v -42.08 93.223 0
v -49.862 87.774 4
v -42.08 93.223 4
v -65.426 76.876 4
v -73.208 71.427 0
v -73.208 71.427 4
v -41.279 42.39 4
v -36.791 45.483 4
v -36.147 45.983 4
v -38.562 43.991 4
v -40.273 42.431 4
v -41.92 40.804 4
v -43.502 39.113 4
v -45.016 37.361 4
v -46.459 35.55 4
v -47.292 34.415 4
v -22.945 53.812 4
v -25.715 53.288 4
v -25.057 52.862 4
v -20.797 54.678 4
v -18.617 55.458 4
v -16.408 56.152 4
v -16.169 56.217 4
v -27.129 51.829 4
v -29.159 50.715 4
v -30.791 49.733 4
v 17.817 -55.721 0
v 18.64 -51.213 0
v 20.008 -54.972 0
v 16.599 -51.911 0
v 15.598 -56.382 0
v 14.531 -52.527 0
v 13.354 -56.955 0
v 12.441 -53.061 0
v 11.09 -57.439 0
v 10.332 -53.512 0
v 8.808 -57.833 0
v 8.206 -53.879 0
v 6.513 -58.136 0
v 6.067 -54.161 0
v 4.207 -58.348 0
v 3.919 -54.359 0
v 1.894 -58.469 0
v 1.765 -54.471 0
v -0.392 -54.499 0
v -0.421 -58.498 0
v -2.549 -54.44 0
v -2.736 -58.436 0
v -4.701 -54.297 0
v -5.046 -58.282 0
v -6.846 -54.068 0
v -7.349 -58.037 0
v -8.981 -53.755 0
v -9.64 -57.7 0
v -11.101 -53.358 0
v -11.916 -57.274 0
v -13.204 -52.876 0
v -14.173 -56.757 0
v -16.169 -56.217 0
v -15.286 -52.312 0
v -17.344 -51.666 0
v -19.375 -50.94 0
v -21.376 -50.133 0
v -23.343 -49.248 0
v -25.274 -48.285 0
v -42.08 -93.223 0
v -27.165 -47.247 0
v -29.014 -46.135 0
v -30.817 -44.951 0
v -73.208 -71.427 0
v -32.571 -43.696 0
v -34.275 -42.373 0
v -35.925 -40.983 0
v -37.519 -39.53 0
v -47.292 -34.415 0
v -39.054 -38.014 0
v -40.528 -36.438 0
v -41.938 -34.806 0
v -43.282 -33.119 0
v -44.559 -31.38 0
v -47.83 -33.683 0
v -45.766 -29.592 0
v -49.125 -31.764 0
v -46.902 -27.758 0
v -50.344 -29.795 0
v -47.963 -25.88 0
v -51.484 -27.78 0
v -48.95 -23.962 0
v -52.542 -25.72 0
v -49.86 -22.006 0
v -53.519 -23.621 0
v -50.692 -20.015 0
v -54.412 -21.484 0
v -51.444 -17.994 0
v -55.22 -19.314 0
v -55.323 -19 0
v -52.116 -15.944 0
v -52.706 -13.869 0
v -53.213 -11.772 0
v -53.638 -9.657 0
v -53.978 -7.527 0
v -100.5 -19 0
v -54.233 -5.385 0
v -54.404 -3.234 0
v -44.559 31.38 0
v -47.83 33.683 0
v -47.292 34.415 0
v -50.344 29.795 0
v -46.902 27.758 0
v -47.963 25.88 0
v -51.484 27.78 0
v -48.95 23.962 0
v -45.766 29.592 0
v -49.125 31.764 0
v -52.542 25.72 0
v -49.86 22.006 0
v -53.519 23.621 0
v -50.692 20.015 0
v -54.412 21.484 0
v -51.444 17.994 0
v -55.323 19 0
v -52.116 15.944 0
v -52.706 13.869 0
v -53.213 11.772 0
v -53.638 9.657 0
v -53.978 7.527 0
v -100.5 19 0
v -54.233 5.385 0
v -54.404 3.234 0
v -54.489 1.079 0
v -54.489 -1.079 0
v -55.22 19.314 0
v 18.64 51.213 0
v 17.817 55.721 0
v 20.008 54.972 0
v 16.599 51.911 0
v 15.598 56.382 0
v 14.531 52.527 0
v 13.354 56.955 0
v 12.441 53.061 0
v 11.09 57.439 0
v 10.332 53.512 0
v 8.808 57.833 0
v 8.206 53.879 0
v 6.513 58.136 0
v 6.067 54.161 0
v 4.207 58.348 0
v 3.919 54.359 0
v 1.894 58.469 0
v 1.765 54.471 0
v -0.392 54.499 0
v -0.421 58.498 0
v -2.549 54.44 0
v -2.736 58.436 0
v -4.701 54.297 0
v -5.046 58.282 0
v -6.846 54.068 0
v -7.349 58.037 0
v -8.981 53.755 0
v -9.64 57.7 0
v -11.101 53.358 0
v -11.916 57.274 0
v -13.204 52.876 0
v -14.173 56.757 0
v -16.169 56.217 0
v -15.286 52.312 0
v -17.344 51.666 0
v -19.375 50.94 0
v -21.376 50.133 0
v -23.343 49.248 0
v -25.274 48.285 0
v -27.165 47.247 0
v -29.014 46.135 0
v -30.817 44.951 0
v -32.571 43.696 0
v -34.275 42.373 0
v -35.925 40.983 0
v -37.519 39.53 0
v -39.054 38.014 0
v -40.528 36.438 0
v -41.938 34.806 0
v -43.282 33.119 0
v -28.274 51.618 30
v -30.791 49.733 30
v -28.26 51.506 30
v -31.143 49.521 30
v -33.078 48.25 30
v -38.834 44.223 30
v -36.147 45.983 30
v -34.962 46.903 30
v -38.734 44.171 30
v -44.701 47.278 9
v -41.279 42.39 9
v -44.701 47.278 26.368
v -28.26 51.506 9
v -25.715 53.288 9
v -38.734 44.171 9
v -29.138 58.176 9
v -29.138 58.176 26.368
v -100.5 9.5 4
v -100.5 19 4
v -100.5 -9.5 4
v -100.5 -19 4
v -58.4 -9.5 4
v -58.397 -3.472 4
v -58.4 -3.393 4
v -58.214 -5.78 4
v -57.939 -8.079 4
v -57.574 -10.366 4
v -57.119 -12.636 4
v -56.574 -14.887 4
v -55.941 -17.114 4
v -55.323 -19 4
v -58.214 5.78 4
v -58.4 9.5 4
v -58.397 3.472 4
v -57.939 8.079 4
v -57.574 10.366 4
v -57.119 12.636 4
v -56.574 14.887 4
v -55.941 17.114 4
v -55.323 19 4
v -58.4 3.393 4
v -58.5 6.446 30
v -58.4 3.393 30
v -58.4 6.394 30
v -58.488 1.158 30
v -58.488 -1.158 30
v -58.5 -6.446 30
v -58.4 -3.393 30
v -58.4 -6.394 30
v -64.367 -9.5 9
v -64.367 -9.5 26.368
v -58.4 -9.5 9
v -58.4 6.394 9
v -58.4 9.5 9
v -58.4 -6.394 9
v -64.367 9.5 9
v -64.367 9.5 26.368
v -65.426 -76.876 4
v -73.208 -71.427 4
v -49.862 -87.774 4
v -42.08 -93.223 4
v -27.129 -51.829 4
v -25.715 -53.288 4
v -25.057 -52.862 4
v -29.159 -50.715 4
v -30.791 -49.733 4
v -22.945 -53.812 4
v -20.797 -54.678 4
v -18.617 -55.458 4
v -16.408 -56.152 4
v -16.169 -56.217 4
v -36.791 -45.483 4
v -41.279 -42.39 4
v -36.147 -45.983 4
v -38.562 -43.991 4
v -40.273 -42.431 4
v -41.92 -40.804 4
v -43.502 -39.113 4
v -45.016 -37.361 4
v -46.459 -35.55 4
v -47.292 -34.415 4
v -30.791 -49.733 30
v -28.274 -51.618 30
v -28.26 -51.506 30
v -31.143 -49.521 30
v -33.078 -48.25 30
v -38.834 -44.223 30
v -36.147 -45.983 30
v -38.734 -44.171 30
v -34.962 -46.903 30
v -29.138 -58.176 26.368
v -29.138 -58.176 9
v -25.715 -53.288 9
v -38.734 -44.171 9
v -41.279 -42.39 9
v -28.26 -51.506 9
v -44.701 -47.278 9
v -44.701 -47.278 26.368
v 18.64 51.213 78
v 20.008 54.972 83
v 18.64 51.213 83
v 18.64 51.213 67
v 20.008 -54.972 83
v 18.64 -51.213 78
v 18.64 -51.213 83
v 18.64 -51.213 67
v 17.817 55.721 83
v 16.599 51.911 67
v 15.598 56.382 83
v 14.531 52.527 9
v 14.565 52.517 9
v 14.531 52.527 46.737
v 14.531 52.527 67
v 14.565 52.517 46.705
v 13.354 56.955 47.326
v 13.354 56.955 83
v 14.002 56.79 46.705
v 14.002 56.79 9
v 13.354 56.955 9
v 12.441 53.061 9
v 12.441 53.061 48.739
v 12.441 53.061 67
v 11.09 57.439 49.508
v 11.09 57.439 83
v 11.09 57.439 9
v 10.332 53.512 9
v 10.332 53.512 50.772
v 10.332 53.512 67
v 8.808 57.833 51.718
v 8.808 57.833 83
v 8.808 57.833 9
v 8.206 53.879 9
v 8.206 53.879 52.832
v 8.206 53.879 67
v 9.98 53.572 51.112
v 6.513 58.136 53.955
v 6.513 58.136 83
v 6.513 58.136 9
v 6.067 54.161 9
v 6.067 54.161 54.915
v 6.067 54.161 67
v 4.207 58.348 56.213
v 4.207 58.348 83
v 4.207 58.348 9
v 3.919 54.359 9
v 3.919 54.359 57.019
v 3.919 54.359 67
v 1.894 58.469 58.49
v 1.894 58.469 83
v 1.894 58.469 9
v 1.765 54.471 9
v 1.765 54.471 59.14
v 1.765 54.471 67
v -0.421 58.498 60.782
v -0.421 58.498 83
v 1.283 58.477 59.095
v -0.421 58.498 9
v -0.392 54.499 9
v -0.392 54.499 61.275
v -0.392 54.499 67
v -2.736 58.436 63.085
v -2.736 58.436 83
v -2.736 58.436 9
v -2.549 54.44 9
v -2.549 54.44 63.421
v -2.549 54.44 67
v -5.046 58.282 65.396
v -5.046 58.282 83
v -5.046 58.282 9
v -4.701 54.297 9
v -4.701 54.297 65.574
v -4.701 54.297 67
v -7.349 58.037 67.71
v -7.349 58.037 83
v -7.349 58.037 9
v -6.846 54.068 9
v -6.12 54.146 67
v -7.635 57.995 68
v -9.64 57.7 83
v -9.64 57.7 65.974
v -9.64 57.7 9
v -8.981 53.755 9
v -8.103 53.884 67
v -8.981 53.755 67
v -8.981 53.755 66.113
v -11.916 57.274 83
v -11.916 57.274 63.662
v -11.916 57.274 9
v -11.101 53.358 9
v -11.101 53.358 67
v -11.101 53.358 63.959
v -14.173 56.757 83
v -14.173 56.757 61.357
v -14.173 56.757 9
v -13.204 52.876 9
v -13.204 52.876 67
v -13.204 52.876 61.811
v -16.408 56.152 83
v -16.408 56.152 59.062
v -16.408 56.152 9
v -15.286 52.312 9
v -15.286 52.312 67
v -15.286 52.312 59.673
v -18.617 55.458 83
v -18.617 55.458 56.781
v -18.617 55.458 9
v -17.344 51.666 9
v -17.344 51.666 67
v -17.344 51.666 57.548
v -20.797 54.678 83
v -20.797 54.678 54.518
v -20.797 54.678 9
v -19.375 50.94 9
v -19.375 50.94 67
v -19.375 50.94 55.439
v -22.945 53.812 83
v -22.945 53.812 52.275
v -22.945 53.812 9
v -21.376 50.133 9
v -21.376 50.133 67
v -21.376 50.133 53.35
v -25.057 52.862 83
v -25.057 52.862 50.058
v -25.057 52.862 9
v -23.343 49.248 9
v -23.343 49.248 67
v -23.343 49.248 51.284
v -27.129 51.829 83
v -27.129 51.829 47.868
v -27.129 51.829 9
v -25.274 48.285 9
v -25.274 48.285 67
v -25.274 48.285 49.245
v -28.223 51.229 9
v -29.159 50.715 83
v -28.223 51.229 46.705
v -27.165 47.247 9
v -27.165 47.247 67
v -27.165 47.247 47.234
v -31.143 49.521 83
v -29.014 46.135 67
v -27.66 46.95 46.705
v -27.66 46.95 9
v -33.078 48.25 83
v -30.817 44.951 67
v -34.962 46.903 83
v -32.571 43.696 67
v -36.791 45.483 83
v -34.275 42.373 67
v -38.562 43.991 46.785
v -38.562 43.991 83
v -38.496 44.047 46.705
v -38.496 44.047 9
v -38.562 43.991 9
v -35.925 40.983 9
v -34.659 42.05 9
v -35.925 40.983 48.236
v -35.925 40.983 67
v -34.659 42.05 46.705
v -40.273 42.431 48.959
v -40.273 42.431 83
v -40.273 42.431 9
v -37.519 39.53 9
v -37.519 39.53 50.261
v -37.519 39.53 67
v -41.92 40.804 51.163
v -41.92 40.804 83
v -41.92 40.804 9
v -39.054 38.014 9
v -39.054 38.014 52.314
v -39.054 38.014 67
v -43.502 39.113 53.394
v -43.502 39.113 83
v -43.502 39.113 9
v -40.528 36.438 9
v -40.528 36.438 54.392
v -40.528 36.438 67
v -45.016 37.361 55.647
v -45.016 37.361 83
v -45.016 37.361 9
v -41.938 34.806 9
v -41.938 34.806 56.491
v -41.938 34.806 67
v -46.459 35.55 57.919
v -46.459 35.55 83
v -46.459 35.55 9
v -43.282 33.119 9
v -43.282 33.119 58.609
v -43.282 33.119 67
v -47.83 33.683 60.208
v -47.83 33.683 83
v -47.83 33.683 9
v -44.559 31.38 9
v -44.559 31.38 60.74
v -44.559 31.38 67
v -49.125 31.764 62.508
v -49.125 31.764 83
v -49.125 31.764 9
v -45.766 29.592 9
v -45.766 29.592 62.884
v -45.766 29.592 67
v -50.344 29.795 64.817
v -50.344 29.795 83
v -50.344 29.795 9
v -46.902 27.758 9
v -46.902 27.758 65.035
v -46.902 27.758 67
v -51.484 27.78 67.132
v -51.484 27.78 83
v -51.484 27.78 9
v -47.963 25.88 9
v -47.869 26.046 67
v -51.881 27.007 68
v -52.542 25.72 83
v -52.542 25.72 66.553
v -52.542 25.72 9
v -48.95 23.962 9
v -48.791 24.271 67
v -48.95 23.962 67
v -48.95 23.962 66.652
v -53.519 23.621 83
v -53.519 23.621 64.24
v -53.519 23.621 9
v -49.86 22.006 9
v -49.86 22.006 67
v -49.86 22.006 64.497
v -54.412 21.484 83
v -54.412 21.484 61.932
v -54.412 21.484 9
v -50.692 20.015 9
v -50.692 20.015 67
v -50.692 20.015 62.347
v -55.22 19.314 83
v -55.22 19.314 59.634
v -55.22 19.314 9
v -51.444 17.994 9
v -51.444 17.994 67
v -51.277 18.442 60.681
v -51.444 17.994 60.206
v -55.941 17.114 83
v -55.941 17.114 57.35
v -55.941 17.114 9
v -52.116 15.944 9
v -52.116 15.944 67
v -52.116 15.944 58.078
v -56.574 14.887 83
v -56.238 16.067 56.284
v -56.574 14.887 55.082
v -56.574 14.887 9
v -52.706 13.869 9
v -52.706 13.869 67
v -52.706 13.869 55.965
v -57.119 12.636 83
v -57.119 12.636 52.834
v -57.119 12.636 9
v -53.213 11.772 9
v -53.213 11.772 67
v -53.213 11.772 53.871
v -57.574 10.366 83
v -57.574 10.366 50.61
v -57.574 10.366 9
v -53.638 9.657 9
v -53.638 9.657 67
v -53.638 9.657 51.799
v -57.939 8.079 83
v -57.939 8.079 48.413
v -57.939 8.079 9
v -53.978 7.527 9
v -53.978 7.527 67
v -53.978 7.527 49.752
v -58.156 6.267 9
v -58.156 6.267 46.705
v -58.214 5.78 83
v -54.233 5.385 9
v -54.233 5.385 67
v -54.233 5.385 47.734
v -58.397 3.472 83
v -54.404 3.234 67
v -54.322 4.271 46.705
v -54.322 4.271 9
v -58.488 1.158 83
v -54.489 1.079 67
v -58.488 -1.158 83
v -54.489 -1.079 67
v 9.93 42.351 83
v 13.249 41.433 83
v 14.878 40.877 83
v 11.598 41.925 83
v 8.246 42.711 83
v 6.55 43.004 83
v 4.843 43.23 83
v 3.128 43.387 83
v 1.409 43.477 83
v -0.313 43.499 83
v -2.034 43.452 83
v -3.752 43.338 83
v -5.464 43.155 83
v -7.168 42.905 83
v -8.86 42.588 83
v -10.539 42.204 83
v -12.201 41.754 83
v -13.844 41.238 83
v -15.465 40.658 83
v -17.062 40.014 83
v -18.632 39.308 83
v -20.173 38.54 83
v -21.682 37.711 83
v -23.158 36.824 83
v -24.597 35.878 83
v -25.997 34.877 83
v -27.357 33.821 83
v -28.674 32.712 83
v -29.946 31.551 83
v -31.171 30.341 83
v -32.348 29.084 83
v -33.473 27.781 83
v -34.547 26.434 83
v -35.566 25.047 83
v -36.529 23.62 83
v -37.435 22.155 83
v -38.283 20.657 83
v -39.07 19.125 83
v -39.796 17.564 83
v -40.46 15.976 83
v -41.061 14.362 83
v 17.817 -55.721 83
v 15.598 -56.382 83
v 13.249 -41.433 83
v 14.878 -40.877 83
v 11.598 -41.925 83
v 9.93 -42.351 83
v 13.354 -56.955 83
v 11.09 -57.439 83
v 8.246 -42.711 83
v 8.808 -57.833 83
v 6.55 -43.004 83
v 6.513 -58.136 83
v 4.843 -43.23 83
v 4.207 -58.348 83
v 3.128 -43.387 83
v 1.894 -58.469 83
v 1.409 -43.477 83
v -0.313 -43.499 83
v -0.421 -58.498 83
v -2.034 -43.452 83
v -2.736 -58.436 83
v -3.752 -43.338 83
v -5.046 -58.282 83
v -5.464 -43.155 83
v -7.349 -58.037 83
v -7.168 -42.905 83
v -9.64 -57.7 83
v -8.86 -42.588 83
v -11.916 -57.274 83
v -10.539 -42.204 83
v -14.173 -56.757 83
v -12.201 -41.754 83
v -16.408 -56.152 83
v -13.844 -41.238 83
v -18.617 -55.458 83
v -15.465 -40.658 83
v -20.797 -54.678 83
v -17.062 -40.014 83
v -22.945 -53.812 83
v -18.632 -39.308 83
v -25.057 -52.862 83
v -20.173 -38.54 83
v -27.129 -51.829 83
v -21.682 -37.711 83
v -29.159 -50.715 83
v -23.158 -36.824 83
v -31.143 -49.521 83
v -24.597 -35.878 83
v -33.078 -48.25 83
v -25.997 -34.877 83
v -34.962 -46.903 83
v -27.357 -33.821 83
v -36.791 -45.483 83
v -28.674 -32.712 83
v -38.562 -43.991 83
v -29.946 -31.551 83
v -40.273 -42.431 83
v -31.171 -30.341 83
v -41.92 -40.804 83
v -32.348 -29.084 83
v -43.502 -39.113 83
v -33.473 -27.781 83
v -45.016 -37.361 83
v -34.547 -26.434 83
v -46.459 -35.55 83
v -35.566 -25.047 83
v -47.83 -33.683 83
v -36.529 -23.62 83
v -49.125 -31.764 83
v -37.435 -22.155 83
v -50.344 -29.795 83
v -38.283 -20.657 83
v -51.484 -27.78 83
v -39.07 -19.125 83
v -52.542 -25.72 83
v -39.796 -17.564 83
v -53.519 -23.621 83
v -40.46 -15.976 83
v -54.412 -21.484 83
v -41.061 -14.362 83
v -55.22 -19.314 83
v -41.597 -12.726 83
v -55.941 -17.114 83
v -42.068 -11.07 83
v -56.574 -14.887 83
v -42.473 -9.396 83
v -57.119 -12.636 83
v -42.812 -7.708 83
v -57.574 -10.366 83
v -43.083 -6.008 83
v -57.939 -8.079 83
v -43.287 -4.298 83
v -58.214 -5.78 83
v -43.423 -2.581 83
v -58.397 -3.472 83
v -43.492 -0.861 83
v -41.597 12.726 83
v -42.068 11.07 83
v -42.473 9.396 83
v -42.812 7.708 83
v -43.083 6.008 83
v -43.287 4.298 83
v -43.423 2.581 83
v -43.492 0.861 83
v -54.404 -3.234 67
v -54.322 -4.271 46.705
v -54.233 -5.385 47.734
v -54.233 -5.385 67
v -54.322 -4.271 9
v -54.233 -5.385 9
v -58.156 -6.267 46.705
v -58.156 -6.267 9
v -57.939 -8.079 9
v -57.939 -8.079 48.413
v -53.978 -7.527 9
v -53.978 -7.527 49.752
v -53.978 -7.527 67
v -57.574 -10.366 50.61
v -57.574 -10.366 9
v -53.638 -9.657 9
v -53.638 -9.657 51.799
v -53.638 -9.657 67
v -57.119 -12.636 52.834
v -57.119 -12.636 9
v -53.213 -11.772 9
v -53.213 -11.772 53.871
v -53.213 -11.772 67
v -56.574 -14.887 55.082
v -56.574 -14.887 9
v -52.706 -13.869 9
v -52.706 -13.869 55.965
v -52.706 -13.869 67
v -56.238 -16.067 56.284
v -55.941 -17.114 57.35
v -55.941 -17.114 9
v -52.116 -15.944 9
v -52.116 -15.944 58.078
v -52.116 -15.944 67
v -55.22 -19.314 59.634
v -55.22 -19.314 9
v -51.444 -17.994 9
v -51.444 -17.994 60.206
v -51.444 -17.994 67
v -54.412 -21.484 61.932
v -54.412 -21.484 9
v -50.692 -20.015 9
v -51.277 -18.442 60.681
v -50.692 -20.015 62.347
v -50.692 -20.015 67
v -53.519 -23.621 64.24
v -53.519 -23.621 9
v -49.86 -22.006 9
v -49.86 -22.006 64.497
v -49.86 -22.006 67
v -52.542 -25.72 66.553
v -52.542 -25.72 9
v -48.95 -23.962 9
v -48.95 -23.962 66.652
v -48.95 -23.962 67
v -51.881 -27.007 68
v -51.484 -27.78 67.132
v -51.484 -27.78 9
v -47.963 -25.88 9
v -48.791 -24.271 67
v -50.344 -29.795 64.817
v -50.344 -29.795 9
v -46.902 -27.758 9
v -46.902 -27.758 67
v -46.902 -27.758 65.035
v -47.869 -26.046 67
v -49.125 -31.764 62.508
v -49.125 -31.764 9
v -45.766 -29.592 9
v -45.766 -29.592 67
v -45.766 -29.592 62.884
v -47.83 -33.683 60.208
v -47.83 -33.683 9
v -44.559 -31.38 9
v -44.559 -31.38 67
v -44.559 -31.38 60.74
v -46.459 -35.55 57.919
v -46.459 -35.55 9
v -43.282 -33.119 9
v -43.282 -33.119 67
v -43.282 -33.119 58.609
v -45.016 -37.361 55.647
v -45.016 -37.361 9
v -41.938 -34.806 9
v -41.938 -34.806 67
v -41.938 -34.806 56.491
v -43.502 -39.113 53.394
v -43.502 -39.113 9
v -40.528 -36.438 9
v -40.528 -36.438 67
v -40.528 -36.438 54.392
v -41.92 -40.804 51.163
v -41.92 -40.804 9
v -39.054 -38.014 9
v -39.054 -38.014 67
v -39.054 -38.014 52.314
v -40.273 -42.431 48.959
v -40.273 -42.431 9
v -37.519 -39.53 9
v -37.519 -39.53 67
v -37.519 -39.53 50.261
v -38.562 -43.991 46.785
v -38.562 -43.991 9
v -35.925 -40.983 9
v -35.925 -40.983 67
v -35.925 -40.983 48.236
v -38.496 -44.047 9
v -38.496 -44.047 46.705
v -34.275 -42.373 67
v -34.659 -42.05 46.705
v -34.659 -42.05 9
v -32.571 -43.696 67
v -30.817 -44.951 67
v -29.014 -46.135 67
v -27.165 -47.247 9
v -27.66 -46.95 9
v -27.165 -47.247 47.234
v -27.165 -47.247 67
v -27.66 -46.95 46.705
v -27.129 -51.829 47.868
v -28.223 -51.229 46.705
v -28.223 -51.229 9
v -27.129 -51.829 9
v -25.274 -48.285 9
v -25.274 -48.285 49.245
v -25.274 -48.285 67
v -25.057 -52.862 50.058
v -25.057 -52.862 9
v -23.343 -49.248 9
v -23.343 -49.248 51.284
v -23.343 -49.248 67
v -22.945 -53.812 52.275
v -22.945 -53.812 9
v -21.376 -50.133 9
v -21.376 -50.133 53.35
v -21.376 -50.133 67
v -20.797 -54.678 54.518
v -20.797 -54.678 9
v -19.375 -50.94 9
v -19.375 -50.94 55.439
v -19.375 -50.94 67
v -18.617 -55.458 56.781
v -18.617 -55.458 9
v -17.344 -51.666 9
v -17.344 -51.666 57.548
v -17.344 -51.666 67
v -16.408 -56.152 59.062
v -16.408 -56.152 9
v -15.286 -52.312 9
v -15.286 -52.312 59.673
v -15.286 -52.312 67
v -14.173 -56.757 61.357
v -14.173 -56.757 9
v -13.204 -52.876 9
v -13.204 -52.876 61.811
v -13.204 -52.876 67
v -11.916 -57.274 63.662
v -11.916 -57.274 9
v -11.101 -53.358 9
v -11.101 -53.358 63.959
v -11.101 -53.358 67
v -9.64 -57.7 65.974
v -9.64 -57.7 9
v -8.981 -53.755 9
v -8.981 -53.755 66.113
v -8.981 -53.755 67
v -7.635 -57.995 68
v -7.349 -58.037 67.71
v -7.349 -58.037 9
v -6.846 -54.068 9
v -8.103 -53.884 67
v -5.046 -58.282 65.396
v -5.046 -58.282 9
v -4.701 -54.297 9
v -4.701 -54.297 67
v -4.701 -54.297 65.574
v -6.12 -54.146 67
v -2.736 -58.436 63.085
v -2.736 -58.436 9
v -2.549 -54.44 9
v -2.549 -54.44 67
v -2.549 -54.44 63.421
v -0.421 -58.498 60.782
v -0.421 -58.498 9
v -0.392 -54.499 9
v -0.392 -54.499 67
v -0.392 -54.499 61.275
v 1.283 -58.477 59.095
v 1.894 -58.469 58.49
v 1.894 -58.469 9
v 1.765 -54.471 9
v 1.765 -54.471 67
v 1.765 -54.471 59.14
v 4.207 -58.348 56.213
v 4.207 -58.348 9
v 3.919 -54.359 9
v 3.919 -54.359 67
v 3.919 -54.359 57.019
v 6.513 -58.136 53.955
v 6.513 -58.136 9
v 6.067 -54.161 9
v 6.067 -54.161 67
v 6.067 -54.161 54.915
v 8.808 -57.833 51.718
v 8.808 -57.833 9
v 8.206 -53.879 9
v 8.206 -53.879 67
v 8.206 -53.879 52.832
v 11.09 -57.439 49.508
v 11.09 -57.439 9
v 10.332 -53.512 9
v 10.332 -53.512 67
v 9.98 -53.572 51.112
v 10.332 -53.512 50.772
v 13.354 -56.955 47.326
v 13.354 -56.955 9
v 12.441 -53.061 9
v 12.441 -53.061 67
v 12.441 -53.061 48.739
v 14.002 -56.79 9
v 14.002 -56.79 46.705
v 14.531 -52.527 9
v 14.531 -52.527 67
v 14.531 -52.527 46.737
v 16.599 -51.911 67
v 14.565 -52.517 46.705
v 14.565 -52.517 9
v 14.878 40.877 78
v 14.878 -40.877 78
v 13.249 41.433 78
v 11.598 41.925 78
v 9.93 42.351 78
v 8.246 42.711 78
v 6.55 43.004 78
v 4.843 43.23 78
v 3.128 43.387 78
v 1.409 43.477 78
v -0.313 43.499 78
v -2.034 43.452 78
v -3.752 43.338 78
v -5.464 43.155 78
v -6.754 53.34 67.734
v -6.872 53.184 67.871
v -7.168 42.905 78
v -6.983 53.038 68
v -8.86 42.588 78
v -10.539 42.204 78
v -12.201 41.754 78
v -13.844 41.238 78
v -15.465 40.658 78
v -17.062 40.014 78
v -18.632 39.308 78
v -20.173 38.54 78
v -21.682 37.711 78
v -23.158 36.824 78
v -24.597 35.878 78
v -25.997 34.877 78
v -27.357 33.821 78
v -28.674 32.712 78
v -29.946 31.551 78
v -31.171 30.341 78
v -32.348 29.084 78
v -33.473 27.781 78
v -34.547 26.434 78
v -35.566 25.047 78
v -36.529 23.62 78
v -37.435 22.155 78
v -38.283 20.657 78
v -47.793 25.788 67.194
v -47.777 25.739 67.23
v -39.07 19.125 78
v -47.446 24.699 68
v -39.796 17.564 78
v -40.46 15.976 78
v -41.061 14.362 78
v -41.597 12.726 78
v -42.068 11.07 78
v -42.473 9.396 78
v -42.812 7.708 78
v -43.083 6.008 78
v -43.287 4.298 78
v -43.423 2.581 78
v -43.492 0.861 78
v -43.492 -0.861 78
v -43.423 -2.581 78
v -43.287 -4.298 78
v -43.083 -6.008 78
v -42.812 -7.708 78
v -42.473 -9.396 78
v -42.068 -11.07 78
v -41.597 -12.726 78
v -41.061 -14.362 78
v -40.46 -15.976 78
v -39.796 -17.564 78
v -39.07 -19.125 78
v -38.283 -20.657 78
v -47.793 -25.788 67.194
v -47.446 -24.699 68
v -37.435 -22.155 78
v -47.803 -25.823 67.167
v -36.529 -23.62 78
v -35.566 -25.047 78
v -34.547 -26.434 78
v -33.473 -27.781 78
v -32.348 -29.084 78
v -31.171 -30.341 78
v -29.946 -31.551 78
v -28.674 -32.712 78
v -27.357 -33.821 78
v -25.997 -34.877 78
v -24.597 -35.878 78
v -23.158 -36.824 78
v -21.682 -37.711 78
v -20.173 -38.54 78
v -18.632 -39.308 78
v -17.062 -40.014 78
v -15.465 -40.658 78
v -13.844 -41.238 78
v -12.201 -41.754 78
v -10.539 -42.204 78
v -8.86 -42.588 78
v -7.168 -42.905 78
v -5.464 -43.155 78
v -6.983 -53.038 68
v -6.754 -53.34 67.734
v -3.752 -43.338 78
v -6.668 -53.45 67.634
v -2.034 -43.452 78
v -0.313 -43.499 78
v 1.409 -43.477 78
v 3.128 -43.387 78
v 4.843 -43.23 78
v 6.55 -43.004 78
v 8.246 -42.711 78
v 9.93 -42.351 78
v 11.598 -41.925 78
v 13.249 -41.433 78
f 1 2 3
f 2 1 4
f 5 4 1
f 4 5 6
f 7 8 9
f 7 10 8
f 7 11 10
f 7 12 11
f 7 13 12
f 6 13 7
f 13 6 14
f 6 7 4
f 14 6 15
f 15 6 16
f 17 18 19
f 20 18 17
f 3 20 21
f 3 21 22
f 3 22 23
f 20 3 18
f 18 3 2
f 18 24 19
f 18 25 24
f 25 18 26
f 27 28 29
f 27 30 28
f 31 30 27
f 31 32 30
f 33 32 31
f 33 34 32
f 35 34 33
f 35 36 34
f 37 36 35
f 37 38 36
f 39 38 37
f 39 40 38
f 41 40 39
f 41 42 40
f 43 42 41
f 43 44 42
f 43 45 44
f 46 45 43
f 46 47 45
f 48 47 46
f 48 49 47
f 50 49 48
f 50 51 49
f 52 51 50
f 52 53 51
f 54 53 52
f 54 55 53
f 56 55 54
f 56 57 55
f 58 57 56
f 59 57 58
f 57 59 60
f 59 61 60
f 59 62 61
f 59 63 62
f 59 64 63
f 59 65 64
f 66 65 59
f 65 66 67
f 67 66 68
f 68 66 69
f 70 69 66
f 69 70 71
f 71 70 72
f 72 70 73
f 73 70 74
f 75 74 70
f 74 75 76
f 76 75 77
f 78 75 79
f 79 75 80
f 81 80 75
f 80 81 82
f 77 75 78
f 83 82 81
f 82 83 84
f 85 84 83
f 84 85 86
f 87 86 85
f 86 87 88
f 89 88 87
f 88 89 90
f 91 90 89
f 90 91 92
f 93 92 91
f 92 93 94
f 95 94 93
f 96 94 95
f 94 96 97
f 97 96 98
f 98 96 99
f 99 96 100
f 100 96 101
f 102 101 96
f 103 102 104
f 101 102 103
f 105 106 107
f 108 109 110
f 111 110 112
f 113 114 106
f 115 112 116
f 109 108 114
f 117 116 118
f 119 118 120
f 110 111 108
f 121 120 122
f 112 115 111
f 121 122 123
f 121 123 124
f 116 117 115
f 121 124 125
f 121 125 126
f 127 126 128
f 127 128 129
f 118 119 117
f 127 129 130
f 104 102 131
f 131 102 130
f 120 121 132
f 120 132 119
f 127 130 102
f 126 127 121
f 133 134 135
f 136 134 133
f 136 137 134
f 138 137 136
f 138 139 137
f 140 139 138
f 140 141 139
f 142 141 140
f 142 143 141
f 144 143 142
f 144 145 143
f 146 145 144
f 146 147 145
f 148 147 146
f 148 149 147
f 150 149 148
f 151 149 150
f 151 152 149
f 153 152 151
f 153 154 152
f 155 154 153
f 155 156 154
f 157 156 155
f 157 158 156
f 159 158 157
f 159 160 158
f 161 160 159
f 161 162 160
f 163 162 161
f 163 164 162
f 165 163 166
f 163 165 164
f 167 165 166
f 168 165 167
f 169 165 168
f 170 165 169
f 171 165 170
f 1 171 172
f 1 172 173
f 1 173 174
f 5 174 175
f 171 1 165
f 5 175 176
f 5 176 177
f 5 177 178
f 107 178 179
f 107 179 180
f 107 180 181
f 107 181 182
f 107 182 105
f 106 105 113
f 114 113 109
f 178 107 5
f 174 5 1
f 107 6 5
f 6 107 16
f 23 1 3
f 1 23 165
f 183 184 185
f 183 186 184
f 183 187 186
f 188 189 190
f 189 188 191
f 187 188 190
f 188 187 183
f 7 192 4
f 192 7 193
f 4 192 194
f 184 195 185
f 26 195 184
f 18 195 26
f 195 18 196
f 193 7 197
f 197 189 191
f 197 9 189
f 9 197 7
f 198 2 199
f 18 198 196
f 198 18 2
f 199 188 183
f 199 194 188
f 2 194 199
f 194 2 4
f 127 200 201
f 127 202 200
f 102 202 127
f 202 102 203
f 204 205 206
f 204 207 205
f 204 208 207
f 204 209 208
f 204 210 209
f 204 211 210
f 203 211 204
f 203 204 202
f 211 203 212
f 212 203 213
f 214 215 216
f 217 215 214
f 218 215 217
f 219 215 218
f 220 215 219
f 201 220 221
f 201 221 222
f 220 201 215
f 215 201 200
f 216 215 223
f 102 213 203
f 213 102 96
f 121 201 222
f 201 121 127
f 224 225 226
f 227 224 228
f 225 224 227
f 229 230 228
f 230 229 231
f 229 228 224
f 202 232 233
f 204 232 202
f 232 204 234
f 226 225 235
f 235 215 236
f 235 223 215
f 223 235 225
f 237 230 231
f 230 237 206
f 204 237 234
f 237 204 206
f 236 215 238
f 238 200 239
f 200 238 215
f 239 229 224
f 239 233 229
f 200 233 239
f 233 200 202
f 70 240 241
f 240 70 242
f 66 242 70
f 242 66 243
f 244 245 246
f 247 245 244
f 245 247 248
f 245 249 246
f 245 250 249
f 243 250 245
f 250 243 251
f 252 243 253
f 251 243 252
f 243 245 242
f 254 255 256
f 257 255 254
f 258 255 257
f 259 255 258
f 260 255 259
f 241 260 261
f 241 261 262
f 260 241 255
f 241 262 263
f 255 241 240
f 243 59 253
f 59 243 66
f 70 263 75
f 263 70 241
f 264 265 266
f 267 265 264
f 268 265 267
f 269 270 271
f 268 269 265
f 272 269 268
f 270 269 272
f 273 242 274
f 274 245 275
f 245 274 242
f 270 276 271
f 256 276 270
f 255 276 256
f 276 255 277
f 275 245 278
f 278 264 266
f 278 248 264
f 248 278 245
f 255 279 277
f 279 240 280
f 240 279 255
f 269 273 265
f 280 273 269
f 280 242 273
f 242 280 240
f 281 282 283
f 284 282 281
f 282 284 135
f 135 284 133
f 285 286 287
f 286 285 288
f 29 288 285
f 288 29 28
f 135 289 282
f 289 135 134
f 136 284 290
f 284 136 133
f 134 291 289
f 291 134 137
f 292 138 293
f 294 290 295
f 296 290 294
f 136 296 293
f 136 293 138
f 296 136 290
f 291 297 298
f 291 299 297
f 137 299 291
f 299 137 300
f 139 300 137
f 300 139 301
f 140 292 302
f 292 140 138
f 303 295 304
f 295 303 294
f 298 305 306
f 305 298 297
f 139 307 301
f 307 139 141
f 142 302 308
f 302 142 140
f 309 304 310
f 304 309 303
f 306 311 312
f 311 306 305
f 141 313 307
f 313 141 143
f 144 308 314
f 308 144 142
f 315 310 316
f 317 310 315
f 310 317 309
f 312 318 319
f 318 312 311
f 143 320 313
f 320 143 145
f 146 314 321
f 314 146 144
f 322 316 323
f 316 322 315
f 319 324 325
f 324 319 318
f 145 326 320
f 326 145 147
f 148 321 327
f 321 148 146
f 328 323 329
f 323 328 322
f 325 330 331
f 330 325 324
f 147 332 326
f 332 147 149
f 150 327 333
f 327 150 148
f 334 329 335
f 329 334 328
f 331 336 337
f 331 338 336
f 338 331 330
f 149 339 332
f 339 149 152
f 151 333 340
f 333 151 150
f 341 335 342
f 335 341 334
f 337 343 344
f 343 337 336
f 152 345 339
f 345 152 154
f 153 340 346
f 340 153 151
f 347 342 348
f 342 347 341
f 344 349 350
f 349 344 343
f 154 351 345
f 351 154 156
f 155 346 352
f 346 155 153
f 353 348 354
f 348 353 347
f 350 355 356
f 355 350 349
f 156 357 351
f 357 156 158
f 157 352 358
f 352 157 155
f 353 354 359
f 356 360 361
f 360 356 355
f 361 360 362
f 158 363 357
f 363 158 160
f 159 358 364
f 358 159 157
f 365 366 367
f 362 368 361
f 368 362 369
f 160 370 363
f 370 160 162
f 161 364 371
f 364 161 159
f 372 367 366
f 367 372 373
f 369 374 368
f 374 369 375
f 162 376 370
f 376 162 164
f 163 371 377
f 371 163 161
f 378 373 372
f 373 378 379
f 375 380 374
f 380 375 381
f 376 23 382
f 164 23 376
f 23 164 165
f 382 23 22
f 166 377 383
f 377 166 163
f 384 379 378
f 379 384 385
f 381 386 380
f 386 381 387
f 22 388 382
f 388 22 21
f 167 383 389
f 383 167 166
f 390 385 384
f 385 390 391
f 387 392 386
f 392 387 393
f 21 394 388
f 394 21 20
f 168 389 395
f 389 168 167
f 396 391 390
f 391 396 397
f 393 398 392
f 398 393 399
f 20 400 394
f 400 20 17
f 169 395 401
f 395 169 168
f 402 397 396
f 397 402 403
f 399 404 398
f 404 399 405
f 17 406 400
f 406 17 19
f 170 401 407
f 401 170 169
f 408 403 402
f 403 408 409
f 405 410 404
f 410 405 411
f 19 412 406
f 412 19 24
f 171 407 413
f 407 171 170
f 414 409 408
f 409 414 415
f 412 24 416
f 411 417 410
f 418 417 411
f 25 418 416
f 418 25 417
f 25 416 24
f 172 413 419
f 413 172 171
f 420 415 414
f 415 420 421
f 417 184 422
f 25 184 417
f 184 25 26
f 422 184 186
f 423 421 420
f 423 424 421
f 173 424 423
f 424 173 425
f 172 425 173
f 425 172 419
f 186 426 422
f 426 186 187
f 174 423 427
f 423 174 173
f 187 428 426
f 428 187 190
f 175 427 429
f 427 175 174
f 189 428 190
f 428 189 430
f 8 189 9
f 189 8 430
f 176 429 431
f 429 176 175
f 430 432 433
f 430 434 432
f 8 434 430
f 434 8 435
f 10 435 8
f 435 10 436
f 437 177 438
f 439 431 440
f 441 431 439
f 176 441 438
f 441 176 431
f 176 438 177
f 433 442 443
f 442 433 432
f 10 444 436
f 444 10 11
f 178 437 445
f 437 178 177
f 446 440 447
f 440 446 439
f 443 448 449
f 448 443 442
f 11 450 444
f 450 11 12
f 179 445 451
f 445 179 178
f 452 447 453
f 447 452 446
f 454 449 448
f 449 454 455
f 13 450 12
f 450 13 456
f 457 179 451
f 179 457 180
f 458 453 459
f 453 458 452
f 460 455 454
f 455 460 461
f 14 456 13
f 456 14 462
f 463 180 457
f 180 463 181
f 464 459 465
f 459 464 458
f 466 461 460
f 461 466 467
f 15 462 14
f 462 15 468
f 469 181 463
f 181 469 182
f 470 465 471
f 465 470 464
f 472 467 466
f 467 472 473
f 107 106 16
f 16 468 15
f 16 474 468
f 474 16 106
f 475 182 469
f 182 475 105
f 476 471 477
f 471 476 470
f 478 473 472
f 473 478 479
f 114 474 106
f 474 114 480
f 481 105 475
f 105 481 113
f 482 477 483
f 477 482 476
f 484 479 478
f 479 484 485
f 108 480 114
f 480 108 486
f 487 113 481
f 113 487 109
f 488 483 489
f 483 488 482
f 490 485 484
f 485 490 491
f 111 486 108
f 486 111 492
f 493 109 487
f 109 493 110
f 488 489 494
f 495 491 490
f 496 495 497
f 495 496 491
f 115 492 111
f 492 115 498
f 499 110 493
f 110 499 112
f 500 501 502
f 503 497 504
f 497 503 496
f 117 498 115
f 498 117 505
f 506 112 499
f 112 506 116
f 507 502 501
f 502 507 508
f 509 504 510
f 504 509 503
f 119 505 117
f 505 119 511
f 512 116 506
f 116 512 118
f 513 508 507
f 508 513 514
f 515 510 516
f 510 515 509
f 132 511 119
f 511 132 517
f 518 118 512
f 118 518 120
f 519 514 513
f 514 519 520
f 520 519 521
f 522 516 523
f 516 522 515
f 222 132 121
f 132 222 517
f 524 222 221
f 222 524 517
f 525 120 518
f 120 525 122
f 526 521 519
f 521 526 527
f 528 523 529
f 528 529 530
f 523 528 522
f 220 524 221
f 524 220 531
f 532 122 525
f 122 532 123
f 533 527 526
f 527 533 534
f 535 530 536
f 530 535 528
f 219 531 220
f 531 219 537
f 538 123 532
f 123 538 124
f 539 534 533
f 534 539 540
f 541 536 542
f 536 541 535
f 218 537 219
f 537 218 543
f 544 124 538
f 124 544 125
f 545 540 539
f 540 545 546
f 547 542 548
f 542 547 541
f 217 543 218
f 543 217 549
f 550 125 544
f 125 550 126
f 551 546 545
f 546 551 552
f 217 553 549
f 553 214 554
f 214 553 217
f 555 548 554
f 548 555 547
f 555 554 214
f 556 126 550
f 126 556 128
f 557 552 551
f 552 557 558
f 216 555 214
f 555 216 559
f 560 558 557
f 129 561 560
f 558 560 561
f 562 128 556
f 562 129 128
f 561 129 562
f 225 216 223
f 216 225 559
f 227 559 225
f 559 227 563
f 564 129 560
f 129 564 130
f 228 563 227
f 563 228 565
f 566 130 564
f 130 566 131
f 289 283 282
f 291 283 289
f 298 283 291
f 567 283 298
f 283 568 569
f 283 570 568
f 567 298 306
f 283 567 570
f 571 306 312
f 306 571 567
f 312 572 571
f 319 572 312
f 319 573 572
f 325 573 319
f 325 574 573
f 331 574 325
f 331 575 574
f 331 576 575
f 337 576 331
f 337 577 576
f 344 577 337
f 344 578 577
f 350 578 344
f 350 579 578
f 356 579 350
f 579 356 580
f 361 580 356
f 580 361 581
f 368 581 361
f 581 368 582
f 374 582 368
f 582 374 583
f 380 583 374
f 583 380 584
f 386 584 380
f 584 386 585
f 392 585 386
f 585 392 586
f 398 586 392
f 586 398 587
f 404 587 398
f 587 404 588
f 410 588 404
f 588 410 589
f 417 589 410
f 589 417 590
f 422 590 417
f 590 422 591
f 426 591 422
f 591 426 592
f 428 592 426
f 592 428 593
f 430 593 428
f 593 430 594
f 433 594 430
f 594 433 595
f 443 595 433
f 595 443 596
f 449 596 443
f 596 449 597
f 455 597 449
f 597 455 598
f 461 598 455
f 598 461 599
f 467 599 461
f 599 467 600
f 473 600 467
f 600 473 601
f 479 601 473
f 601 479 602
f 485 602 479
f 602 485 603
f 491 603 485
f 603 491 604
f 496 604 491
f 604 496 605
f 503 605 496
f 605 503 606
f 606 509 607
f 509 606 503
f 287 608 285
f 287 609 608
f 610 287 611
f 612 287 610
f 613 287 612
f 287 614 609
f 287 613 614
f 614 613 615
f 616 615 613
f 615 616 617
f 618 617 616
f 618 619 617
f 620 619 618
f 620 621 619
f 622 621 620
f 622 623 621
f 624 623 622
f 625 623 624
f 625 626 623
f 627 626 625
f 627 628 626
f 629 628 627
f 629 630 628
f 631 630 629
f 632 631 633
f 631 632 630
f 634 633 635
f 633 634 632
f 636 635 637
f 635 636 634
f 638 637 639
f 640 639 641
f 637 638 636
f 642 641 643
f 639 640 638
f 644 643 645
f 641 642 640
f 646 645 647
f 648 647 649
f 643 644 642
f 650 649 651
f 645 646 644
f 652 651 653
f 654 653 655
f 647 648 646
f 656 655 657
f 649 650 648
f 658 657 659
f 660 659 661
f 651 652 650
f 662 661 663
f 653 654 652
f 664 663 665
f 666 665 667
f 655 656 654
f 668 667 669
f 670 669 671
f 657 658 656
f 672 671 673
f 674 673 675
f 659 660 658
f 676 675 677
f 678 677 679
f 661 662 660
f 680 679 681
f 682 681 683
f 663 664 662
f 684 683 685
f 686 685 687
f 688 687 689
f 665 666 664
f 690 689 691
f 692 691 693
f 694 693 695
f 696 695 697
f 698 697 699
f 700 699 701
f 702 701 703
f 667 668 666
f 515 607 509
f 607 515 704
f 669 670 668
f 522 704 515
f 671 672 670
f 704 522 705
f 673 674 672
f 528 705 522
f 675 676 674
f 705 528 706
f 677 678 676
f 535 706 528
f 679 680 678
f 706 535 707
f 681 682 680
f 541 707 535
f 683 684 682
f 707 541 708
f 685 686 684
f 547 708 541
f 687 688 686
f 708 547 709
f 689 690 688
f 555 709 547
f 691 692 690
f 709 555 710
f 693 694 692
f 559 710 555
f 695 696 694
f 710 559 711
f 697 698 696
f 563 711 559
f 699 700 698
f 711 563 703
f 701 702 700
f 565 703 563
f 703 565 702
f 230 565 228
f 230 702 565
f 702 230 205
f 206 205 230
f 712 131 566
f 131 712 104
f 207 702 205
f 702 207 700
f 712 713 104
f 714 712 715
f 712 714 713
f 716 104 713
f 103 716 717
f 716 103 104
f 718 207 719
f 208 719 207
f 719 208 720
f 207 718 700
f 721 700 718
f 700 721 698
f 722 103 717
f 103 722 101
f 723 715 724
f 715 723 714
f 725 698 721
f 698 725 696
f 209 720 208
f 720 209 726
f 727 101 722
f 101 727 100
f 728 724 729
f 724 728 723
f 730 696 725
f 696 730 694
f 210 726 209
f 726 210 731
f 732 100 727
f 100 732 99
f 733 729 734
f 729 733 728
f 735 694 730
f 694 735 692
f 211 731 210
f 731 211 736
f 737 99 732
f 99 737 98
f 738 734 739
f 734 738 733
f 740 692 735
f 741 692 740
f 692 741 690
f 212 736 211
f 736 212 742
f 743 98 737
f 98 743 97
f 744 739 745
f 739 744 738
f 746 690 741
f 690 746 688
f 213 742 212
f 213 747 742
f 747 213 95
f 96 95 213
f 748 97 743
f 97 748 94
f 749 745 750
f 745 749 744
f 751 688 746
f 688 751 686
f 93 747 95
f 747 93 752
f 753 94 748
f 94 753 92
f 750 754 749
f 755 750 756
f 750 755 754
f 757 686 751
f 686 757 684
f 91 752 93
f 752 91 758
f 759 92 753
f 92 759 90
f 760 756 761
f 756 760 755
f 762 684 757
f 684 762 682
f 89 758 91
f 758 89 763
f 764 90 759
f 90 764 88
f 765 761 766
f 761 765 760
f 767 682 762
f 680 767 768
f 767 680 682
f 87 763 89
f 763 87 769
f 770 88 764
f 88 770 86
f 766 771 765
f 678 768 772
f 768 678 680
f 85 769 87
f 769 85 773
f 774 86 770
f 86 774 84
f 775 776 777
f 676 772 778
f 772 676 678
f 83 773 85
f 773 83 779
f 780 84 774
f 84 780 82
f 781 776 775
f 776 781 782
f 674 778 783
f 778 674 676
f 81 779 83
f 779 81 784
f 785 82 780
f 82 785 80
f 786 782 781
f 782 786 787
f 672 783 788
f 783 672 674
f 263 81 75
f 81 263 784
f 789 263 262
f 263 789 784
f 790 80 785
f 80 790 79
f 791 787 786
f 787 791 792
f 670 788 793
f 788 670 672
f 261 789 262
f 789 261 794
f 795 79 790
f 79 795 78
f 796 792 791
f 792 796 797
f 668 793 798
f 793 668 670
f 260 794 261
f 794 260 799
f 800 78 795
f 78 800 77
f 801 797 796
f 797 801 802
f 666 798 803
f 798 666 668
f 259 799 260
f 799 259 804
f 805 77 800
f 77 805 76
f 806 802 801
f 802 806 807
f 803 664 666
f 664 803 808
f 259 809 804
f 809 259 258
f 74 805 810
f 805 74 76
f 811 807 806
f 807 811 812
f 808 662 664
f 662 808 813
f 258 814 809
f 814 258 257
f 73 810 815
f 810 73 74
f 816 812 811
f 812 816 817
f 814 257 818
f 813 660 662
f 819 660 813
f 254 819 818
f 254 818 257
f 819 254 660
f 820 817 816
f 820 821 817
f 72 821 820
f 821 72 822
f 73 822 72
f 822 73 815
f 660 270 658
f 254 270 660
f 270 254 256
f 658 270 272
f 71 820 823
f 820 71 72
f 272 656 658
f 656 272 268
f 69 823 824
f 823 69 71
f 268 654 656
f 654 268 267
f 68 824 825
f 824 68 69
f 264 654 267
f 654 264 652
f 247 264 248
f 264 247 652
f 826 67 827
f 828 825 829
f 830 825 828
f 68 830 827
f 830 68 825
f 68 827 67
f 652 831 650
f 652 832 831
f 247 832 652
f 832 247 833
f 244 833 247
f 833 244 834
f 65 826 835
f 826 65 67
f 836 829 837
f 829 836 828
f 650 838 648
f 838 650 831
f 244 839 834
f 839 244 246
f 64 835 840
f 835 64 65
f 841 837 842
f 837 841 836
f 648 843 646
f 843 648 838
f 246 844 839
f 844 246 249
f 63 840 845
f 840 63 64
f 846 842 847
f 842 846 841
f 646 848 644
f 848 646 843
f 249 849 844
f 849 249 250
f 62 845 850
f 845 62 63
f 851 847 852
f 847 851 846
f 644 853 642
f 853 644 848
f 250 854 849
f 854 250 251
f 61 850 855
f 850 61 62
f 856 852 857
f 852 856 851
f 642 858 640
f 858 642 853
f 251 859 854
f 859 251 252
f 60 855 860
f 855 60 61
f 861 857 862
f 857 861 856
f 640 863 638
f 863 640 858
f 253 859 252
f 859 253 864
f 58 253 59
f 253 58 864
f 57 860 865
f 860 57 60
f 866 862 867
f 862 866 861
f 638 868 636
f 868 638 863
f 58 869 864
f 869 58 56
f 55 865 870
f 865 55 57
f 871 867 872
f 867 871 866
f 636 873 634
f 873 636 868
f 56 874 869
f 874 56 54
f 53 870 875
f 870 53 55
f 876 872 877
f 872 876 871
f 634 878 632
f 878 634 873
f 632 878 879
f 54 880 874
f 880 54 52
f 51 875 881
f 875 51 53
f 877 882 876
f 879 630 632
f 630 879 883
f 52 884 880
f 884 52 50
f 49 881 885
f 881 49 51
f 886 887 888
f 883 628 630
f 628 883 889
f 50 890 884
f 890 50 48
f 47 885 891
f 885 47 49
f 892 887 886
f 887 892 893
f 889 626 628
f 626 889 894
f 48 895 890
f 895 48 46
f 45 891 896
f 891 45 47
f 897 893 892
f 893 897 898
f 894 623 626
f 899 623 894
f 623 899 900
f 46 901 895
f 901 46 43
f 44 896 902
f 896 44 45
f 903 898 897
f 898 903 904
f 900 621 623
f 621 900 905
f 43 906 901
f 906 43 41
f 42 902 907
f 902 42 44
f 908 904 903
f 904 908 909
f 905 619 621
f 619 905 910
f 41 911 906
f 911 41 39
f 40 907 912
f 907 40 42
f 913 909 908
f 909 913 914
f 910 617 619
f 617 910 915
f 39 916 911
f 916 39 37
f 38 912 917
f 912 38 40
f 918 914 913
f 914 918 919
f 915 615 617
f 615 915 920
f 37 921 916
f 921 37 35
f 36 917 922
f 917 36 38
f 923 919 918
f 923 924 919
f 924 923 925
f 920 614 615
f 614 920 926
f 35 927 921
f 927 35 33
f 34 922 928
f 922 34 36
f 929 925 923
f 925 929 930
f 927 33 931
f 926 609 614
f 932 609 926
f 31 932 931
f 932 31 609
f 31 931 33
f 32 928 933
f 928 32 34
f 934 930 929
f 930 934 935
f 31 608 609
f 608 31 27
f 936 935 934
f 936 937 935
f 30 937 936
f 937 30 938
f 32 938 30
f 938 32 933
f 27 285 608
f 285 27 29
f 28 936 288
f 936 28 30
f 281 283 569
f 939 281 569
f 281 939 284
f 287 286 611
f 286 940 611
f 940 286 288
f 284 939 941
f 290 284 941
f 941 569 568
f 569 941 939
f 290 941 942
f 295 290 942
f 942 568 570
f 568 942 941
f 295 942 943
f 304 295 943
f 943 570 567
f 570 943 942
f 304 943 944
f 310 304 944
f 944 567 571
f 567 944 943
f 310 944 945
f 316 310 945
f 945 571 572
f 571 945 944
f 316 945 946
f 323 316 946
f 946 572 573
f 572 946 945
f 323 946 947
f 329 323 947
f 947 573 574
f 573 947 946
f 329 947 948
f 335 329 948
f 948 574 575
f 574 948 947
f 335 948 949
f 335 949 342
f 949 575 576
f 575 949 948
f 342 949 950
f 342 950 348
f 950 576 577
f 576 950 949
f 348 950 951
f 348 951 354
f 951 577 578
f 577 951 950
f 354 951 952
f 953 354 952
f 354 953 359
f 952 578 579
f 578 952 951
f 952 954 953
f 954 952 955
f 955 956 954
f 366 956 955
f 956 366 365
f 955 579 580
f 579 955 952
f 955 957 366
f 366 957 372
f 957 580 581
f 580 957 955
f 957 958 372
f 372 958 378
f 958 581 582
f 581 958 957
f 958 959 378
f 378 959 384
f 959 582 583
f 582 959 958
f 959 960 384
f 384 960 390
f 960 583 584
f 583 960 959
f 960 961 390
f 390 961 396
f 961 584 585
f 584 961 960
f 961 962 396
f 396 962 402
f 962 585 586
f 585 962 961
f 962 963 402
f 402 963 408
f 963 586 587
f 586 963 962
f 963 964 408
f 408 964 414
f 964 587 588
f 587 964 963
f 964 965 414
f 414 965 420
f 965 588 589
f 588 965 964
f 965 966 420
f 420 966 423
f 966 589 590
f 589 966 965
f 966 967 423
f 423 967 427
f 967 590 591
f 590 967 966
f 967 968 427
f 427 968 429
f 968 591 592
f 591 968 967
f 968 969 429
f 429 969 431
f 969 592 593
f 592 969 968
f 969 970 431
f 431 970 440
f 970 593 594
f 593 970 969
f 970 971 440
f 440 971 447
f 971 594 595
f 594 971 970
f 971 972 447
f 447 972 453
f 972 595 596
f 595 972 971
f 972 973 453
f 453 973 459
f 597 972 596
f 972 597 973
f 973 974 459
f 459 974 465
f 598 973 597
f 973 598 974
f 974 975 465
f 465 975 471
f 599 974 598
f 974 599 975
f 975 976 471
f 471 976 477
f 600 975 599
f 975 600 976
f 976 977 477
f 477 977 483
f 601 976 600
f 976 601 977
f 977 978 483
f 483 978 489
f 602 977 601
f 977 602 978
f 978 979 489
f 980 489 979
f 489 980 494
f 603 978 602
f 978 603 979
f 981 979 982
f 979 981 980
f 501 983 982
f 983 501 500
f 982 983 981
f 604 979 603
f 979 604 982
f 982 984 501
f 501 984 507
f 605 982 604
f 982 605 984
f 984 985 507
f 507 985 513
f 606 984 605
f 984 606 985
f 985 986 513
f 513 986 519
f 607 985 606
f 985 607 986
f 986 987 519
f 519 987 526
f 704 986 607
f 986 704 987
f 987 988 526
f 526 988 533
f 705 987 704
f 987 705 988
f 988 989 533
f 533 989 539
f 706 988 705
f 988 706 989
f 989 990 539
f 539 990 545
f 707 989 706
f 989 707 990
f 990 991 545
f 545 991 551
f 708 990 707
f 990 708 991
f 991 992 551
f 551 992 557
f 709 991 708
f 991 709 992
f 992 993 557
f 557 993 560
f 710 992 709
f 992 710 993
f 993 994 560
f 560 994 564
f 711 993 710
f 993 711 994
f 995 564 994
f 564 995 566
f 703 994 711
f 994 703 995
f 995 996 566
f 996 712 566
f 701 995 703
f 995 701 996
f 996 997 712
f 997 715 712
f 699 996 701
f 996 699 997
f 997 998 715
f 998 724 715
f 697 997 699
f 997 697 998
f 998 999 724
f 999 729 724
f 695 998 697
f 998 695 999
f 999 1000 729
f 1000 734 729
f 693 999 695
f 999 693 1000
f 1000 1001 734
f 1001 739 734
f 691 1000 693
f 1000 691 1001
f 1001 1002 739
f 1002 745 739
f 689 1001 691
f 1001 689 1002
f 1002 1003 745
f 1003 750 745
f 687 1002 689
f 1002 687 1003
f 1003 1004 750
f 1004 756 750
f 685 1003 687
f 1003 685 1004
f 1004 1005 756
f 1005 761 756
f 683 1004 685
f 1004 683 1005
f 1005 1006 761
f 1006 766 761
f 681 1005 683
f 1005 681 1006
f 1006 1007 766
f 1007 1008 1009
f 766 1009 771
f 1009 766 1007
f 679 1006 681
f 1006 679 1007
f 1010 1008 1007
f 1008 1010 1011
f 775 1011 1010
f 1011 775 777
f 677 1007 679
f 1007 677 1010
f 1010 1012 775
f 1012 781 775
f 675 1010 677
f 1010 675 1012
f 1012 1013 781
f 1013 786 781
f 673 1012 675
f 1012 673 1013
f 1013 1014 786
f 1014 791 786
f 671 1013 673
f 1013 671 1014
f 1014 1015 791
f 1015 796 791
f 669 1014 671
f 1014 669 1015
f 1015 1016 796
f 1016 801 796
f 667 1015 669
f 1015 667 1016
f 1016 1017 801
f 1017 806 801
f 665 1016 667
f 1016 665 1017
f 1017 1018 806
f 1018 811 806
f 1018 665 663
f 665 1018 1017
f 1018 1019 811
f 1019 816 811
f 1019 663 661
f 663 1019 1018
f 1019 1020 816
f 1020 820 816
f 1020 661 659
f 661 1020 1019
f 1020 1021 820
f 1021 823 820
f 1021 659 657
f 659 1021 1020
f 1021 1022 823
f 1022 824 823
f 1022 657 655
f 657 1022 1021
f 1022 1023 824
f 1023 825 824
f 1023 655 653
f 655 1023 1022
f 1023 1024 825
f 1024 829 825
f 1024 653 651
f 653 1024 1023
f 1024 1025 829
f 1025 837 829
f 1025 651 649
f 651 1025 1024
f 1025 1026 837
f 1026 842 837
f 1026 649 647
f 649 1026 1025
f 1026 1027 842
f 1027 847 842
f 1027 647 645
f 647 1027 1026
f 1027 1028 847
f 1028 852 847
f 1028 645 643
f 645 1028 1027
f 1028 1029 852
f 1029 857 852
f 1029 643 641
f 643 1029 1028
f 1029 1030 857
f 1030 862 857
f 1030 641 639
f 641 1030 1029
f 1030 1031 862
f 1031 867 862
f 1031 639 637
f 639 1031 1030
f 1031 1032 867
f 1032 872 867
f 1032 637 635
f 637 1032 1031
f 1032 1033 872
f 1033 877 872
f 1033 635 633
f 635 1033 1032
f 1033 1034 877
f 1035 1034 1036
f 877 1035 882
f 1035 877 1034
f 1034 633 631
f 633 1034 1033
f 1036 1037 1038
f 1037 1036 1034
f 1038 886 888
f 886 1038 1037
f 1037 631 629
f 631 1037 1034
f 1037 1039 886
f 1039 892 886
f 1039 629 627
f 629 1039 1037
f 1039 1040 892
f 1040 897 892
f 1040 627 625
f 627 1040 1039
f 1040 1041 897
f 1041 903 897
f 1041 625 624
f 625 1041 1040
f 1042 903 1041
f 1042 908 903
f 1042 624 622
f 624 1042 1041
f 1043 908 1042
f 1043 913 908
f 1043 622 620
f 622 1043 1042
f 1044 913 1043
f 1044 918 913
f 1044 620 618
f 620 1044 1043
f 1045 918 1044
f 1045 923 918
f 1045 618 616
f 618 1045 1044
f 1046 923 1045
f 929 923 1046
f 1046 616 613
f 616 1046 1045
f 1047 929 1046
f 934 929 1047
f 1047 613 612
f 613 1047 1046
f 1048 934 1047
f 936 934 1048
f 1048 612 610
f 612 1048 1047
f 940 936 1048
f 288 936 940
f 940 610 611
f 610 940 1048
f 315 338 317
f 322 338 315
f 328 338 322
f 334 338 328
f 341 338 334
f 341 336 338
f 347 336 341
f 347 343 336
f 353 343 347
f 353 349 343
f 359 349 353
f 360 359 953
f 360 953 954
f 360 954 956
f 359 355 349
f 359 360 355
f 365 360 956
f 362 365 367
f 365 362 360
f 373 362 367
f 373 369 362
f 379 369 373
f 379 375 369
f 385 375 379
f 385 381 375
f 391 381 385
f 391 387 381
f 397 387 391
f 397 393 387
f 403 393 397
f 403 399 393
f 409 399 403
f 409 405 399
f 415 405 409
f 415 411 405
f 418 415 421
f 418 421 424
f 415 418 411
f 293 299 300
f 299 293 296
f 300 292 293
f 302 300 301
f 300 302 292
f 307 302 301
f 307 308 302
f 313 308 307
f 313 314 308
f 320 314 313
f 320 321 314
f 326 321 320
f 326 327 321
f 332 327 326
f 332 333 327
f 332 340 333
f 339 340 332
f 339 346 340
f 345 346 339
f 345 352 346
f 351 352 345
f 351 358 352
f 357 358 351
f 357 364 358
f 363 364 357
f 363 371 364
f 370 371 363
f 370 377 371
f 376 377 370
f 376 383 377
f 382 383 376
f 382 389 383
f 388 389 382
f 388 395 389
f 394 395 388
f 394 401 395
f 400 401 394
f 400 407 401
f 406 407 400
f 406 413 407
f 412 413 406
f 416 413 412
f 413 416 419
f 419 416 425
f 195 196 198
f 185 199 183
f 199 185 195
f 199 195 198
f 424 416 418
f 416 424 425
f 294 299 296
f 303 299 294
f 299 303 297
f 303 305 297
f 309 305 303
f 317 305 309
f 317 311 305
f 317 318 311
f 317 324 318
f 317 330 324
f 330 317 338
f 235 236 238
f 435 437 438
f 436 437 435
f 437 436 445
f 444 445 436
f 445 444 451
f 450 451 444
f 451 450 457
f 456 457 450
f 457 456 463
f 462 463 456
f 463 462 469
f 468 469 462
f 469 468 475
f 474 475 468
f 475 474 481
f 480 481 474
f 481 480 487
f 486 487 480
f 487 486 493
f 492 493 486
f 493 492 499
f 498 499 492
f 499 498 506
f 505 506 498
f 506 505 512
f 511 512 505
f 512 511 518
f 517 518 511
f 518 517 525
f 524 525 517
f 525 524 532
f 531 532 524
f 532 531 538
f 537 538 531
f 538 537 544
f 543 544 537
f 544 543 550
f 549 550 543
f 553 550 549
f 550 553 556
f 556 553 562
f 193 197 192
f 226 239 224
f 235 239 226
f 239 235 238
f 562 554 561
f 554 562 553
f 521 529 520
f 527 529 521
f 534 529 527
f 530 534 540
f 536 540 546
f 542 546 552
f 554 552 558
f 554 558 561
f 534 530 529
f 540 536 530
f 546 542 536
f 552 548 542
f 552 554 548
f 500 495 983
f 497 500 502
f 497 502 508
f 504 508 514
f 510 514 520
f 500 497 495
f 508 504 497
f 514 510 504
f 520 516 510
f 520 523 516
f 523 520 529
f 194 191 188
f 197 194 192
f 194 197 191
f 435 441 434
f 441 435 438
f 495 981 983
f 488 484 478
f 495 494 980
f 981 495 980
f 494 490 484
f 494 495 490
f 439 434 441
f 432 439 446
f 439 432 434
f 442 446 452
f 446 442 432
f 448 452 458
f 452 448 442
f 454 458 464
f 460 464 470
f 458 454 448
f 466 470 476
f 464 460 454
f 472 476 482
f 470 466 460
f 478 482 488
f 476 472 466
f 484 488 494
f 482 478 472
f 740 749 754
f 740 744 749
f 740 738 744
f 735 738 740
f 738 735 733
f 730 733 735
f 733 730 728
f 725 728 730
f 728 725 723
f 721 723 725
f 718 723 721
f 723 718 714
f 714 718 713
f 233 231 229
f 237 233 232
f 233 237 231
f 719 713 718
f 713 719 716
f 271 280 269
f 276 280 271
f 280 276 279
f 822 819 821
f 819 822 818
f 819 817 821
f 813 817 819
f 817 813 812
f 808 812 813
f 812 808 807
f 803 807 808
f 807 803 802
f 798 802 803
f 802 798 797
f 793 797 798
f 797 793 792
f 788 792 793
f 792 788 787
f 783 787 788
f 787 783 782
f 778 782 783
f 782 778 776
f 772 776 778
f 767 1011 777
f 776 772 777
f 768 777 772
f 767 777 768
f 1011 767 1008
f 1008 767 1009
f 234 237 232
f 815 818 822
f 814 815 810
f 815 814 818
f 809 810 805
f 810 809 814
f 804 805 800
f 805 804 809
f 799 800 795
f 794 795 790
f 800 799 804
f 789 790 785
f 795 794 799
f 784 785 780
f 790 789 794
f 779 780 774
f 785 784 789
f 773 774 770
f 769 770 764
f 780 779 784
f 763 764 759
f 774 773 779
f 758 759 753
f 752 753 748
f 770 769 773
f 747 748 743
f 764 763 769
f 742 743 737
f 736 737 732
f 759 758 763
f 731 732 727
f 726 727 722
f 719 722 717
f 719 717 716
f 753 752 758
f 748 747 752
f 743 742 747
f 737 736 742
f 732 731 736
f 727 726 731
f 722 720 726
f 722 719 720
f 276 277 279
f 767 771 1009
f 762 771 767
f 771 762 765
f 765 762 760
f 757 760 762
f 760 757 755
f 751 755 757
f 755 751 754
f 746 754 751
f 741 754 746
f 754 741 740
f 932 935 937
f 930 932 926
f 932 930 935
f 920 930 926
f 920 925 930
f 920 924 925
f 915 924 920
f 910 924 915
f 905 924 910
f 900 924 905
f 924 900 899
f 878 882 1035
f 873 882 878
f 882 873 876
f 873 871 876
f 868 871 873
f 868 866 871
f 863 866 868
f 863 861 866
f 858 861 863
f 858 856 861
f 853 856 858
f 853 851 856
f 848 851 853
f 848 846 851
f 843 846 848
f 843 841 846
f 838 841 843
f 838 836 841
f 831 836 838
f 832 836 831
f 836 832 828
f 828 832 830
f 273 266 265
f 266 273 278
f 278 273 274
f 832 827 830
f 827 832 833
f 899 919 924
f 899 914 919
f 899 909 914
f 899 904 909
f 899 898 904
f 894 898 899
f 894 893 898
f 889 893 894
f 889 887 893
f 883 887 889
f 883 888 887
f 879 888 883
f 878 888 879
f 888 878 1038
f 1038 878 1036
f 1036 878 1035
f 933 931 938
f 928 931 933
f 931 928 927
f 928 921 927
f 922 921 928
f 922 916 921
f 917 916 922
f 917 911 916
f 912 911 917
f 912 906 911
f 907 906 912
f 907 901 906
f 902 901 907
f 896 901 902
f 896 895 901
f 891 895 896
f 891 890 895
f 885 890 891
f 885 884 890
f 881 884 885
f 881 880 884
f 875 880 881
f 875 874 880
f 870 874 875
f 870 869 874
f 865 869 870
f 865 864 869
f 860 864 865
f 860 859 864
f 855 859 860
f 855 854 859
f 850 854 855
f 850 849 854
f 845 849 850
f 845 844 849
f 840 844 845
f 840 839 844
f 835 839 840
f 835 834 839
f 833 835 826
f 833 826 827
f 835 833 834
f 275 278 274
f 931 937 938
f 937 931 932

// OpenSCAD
// ============================================================
// MP60 dry-side catch bracket ("safety basket") -- v2, arched windows
//
// Glues to the UNDERSIDE of the tank's bottom glass with 20kg
// double-sided tape. Job: if the magnetic coupling ever releases,
// the dry side drops 3mm onto the ledge instead of into the sump.
//
// Design rules:
//  * NEVER touches the dry side in normal operation (2.5mm radial
//    clearance past the rubber shim): zero vibration coupling, the
//    magnetic seating and shim do their job undisturbed.
//  * Venting: 4 big gothic-arched windows + the open mouth expose
//    most of the air-cooled housing. Arched tops = self-supporting.
//  * C-shape, 140 deg mouth: dry side slides out sideways for
//    service without peeling the tape. INSTALL with the mouth
//    pointing the SAME direction as the fan exit (thrust reaction
//    pushes the pump into the closed back of the C).
//  * Print PADS-DOWN on the textured sheet: tape face comes out
//    dead flat. No supports needed anywhere.
//
// MEASURE FIRST (calliper the dry side):
DRY_OD     = 100;  // MEASURED 2026-07-13 (magnet makes it fiddly; clearance absorbs +/-1mm)
DRY_H      = 73;   // MEASURED (if this excluded the ~2mm shim face,
                   // the 5mm drop gap below still leaves 3mm clearance)
SHIM_EXTRA = 4;    // MEASURED: 2mm shim wall -> +4mm on diameter
// ------------------------------------------------------------
CLEAR     = 2.5;   // radial clearance past the shim
DROP_GAP  = 5;     // ledge below the dry side; sized to absorb the
                   // shim-thickness ambiguity in DRY_H
WALL      = 4;
LEDGE_W   = 11;    // ledge reach inward under the housing
LEDGE_T   = 5;
PAD_L     = 42;    // tape pad, radial
PAD_W     = 38;    // tape pad, tangential
TOP_BAND  = 9;     // solid band at the tape plane
MOUTH_DEG = 140;   // widened so the mouth chord (>102mm) clears
                   // the 100mm housing for sideways service removal

ID     = DRY_OD + SHIM_EXTRA + 2*CLEAR;
R_IN   = ID/2;
R_OUT  = R_IN + WALL;
H_COL  = DRY_H + DROP_GAP;         // tape plane -> catch face
H_TOT  = H_COL + LEDGE_T;
C_A0   = MOUTH_DEG/2;              // C spans C_A0 .. 360-C_A0, mouth on +X
C_SPAN = 360 - MOUTH_DEG;
RIBS   = [for (i = [0:4]) C_A0 + i*C_SPAN/4];   // 5 rib centers
PADS   = [RIBS[1], RIBS[2], RIBS[3]];
WIN_H0 = TOP_BAND;                 // window bottom (print z)
WIN_H1 = H_COL - 10;               // window arch apex
$fn = 160;

module c_shell() {
    rotate([0, 0, C_A0]) rotate_extrude(angle = C_SPAN)
        translate([R_IN, 0]) square([WALL, H_TOT]);
}

module ledge() {
    // catch ring + 45deg chamfer, both riding on the full shell
    rotate([0, 0, C_A0]) rotate_extrude(angle = C_SPAN) union() {
        translate([R_IN - LEDGE_W, H_COL]) square([WALL + LEDGE_W, LEDGE_T]);
        polygon([[R_IN, H_COL], [R_IN - LEDGE_W, H_COL],
                 [R_IN, H_COL - LEDGE_W]]);
    }
}

module window_cutter(ang) {
    // chordal prism with a 45deg pointed-arch top, pushed through the wall
    win_w = 2 * R_IN * sin((C_SPAN/4 - 9)/2);      // leaves ~9deg ribs
    rise  = min(win_w/2, WIN_H1 - WIN_H0 - 10);
    rotate([0, 0, ang]) translate([(R_IN + R_OUT)/2, 0, 0])
        rotate([90, 0, 90]) translate([0, 0, -WALL*2]) linear_extrude(WALL*4)
            polygon([[-win_w/2, WIN_H0], [win_w/2, WIN_H0],
                     [win_w/2, WIN_H1 - rise], [0, WIN_H1],
                     [-win_w/2, WIN_H1 - rise]]);
}

module pad(ang) {
    rotate([0, 0, ang]) {
        translate([R_IN, -PAD_W/2, 0]) cube([WALL + PAD_L, PAD_W, WALL]);
        hull() {   // 45deg gusset, prints pads-down with no support
            translate([R_OUT - 0.1, -PAD_W/4, 0])
                cube([0.1, PAD_W/2, WALL + 26]);
            translate([R_OUT + PAD_L - 8, -PAD_W/4, 0])
                cube([8, PAD_W/2, WALL]);
        }
    }
}

difference() {
    union() {
        c_shell();
        ledge();
        for (a = PADS) pad(a);
    }
    for (i = [0:3]) window_cutter(C_A0 + (i + 0.5) * C_SPAN/4);
}
